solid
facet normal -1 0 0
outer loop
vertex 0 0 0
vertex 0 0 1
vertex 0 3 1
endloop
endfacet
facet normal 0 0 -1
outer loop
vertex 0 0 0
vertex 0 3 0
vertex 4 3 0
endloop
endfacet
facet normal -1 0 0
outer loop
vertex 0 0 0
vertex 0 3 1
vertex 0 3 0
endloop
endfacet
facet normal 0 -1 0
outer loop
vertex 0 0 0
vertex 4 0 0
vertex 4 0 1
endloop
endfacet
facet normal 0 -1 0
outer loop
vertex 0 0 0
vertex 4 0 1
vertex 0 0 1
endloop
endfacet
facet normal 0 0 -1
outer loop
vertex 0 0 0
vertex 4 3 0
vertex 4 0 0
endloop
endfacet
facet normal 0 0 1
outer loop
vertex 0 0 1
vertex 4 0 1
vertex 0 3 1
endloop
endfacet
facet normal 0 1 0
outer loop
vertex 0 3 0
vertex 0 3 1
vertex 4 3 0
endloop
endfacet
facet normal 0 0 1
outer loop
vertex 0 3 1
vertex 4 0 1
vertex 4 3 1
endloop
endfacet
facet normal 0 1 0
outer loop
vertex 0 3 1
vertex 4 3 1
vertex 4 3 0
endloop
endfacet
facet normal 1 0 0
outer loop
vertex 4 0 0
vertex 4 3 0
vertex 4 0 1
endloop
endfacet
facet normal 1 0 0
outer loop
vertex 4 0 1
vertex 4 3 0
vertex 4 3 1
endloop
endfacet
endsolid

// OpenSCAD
/* Warning, this is a very basic generator with a lot of approximation 
input data : [VDFN, 5JC, 4x3x1.0mm, 12, , B, C04-25448B]
generated by com.zoubworld.electronics.cad.model3d.Basic
Date : Sun Feb 15 10:50:49 CET 2026
*/

//body
color("black")
translate([0,0,0])
cube([4.0,3.0,1.0], center=false);
